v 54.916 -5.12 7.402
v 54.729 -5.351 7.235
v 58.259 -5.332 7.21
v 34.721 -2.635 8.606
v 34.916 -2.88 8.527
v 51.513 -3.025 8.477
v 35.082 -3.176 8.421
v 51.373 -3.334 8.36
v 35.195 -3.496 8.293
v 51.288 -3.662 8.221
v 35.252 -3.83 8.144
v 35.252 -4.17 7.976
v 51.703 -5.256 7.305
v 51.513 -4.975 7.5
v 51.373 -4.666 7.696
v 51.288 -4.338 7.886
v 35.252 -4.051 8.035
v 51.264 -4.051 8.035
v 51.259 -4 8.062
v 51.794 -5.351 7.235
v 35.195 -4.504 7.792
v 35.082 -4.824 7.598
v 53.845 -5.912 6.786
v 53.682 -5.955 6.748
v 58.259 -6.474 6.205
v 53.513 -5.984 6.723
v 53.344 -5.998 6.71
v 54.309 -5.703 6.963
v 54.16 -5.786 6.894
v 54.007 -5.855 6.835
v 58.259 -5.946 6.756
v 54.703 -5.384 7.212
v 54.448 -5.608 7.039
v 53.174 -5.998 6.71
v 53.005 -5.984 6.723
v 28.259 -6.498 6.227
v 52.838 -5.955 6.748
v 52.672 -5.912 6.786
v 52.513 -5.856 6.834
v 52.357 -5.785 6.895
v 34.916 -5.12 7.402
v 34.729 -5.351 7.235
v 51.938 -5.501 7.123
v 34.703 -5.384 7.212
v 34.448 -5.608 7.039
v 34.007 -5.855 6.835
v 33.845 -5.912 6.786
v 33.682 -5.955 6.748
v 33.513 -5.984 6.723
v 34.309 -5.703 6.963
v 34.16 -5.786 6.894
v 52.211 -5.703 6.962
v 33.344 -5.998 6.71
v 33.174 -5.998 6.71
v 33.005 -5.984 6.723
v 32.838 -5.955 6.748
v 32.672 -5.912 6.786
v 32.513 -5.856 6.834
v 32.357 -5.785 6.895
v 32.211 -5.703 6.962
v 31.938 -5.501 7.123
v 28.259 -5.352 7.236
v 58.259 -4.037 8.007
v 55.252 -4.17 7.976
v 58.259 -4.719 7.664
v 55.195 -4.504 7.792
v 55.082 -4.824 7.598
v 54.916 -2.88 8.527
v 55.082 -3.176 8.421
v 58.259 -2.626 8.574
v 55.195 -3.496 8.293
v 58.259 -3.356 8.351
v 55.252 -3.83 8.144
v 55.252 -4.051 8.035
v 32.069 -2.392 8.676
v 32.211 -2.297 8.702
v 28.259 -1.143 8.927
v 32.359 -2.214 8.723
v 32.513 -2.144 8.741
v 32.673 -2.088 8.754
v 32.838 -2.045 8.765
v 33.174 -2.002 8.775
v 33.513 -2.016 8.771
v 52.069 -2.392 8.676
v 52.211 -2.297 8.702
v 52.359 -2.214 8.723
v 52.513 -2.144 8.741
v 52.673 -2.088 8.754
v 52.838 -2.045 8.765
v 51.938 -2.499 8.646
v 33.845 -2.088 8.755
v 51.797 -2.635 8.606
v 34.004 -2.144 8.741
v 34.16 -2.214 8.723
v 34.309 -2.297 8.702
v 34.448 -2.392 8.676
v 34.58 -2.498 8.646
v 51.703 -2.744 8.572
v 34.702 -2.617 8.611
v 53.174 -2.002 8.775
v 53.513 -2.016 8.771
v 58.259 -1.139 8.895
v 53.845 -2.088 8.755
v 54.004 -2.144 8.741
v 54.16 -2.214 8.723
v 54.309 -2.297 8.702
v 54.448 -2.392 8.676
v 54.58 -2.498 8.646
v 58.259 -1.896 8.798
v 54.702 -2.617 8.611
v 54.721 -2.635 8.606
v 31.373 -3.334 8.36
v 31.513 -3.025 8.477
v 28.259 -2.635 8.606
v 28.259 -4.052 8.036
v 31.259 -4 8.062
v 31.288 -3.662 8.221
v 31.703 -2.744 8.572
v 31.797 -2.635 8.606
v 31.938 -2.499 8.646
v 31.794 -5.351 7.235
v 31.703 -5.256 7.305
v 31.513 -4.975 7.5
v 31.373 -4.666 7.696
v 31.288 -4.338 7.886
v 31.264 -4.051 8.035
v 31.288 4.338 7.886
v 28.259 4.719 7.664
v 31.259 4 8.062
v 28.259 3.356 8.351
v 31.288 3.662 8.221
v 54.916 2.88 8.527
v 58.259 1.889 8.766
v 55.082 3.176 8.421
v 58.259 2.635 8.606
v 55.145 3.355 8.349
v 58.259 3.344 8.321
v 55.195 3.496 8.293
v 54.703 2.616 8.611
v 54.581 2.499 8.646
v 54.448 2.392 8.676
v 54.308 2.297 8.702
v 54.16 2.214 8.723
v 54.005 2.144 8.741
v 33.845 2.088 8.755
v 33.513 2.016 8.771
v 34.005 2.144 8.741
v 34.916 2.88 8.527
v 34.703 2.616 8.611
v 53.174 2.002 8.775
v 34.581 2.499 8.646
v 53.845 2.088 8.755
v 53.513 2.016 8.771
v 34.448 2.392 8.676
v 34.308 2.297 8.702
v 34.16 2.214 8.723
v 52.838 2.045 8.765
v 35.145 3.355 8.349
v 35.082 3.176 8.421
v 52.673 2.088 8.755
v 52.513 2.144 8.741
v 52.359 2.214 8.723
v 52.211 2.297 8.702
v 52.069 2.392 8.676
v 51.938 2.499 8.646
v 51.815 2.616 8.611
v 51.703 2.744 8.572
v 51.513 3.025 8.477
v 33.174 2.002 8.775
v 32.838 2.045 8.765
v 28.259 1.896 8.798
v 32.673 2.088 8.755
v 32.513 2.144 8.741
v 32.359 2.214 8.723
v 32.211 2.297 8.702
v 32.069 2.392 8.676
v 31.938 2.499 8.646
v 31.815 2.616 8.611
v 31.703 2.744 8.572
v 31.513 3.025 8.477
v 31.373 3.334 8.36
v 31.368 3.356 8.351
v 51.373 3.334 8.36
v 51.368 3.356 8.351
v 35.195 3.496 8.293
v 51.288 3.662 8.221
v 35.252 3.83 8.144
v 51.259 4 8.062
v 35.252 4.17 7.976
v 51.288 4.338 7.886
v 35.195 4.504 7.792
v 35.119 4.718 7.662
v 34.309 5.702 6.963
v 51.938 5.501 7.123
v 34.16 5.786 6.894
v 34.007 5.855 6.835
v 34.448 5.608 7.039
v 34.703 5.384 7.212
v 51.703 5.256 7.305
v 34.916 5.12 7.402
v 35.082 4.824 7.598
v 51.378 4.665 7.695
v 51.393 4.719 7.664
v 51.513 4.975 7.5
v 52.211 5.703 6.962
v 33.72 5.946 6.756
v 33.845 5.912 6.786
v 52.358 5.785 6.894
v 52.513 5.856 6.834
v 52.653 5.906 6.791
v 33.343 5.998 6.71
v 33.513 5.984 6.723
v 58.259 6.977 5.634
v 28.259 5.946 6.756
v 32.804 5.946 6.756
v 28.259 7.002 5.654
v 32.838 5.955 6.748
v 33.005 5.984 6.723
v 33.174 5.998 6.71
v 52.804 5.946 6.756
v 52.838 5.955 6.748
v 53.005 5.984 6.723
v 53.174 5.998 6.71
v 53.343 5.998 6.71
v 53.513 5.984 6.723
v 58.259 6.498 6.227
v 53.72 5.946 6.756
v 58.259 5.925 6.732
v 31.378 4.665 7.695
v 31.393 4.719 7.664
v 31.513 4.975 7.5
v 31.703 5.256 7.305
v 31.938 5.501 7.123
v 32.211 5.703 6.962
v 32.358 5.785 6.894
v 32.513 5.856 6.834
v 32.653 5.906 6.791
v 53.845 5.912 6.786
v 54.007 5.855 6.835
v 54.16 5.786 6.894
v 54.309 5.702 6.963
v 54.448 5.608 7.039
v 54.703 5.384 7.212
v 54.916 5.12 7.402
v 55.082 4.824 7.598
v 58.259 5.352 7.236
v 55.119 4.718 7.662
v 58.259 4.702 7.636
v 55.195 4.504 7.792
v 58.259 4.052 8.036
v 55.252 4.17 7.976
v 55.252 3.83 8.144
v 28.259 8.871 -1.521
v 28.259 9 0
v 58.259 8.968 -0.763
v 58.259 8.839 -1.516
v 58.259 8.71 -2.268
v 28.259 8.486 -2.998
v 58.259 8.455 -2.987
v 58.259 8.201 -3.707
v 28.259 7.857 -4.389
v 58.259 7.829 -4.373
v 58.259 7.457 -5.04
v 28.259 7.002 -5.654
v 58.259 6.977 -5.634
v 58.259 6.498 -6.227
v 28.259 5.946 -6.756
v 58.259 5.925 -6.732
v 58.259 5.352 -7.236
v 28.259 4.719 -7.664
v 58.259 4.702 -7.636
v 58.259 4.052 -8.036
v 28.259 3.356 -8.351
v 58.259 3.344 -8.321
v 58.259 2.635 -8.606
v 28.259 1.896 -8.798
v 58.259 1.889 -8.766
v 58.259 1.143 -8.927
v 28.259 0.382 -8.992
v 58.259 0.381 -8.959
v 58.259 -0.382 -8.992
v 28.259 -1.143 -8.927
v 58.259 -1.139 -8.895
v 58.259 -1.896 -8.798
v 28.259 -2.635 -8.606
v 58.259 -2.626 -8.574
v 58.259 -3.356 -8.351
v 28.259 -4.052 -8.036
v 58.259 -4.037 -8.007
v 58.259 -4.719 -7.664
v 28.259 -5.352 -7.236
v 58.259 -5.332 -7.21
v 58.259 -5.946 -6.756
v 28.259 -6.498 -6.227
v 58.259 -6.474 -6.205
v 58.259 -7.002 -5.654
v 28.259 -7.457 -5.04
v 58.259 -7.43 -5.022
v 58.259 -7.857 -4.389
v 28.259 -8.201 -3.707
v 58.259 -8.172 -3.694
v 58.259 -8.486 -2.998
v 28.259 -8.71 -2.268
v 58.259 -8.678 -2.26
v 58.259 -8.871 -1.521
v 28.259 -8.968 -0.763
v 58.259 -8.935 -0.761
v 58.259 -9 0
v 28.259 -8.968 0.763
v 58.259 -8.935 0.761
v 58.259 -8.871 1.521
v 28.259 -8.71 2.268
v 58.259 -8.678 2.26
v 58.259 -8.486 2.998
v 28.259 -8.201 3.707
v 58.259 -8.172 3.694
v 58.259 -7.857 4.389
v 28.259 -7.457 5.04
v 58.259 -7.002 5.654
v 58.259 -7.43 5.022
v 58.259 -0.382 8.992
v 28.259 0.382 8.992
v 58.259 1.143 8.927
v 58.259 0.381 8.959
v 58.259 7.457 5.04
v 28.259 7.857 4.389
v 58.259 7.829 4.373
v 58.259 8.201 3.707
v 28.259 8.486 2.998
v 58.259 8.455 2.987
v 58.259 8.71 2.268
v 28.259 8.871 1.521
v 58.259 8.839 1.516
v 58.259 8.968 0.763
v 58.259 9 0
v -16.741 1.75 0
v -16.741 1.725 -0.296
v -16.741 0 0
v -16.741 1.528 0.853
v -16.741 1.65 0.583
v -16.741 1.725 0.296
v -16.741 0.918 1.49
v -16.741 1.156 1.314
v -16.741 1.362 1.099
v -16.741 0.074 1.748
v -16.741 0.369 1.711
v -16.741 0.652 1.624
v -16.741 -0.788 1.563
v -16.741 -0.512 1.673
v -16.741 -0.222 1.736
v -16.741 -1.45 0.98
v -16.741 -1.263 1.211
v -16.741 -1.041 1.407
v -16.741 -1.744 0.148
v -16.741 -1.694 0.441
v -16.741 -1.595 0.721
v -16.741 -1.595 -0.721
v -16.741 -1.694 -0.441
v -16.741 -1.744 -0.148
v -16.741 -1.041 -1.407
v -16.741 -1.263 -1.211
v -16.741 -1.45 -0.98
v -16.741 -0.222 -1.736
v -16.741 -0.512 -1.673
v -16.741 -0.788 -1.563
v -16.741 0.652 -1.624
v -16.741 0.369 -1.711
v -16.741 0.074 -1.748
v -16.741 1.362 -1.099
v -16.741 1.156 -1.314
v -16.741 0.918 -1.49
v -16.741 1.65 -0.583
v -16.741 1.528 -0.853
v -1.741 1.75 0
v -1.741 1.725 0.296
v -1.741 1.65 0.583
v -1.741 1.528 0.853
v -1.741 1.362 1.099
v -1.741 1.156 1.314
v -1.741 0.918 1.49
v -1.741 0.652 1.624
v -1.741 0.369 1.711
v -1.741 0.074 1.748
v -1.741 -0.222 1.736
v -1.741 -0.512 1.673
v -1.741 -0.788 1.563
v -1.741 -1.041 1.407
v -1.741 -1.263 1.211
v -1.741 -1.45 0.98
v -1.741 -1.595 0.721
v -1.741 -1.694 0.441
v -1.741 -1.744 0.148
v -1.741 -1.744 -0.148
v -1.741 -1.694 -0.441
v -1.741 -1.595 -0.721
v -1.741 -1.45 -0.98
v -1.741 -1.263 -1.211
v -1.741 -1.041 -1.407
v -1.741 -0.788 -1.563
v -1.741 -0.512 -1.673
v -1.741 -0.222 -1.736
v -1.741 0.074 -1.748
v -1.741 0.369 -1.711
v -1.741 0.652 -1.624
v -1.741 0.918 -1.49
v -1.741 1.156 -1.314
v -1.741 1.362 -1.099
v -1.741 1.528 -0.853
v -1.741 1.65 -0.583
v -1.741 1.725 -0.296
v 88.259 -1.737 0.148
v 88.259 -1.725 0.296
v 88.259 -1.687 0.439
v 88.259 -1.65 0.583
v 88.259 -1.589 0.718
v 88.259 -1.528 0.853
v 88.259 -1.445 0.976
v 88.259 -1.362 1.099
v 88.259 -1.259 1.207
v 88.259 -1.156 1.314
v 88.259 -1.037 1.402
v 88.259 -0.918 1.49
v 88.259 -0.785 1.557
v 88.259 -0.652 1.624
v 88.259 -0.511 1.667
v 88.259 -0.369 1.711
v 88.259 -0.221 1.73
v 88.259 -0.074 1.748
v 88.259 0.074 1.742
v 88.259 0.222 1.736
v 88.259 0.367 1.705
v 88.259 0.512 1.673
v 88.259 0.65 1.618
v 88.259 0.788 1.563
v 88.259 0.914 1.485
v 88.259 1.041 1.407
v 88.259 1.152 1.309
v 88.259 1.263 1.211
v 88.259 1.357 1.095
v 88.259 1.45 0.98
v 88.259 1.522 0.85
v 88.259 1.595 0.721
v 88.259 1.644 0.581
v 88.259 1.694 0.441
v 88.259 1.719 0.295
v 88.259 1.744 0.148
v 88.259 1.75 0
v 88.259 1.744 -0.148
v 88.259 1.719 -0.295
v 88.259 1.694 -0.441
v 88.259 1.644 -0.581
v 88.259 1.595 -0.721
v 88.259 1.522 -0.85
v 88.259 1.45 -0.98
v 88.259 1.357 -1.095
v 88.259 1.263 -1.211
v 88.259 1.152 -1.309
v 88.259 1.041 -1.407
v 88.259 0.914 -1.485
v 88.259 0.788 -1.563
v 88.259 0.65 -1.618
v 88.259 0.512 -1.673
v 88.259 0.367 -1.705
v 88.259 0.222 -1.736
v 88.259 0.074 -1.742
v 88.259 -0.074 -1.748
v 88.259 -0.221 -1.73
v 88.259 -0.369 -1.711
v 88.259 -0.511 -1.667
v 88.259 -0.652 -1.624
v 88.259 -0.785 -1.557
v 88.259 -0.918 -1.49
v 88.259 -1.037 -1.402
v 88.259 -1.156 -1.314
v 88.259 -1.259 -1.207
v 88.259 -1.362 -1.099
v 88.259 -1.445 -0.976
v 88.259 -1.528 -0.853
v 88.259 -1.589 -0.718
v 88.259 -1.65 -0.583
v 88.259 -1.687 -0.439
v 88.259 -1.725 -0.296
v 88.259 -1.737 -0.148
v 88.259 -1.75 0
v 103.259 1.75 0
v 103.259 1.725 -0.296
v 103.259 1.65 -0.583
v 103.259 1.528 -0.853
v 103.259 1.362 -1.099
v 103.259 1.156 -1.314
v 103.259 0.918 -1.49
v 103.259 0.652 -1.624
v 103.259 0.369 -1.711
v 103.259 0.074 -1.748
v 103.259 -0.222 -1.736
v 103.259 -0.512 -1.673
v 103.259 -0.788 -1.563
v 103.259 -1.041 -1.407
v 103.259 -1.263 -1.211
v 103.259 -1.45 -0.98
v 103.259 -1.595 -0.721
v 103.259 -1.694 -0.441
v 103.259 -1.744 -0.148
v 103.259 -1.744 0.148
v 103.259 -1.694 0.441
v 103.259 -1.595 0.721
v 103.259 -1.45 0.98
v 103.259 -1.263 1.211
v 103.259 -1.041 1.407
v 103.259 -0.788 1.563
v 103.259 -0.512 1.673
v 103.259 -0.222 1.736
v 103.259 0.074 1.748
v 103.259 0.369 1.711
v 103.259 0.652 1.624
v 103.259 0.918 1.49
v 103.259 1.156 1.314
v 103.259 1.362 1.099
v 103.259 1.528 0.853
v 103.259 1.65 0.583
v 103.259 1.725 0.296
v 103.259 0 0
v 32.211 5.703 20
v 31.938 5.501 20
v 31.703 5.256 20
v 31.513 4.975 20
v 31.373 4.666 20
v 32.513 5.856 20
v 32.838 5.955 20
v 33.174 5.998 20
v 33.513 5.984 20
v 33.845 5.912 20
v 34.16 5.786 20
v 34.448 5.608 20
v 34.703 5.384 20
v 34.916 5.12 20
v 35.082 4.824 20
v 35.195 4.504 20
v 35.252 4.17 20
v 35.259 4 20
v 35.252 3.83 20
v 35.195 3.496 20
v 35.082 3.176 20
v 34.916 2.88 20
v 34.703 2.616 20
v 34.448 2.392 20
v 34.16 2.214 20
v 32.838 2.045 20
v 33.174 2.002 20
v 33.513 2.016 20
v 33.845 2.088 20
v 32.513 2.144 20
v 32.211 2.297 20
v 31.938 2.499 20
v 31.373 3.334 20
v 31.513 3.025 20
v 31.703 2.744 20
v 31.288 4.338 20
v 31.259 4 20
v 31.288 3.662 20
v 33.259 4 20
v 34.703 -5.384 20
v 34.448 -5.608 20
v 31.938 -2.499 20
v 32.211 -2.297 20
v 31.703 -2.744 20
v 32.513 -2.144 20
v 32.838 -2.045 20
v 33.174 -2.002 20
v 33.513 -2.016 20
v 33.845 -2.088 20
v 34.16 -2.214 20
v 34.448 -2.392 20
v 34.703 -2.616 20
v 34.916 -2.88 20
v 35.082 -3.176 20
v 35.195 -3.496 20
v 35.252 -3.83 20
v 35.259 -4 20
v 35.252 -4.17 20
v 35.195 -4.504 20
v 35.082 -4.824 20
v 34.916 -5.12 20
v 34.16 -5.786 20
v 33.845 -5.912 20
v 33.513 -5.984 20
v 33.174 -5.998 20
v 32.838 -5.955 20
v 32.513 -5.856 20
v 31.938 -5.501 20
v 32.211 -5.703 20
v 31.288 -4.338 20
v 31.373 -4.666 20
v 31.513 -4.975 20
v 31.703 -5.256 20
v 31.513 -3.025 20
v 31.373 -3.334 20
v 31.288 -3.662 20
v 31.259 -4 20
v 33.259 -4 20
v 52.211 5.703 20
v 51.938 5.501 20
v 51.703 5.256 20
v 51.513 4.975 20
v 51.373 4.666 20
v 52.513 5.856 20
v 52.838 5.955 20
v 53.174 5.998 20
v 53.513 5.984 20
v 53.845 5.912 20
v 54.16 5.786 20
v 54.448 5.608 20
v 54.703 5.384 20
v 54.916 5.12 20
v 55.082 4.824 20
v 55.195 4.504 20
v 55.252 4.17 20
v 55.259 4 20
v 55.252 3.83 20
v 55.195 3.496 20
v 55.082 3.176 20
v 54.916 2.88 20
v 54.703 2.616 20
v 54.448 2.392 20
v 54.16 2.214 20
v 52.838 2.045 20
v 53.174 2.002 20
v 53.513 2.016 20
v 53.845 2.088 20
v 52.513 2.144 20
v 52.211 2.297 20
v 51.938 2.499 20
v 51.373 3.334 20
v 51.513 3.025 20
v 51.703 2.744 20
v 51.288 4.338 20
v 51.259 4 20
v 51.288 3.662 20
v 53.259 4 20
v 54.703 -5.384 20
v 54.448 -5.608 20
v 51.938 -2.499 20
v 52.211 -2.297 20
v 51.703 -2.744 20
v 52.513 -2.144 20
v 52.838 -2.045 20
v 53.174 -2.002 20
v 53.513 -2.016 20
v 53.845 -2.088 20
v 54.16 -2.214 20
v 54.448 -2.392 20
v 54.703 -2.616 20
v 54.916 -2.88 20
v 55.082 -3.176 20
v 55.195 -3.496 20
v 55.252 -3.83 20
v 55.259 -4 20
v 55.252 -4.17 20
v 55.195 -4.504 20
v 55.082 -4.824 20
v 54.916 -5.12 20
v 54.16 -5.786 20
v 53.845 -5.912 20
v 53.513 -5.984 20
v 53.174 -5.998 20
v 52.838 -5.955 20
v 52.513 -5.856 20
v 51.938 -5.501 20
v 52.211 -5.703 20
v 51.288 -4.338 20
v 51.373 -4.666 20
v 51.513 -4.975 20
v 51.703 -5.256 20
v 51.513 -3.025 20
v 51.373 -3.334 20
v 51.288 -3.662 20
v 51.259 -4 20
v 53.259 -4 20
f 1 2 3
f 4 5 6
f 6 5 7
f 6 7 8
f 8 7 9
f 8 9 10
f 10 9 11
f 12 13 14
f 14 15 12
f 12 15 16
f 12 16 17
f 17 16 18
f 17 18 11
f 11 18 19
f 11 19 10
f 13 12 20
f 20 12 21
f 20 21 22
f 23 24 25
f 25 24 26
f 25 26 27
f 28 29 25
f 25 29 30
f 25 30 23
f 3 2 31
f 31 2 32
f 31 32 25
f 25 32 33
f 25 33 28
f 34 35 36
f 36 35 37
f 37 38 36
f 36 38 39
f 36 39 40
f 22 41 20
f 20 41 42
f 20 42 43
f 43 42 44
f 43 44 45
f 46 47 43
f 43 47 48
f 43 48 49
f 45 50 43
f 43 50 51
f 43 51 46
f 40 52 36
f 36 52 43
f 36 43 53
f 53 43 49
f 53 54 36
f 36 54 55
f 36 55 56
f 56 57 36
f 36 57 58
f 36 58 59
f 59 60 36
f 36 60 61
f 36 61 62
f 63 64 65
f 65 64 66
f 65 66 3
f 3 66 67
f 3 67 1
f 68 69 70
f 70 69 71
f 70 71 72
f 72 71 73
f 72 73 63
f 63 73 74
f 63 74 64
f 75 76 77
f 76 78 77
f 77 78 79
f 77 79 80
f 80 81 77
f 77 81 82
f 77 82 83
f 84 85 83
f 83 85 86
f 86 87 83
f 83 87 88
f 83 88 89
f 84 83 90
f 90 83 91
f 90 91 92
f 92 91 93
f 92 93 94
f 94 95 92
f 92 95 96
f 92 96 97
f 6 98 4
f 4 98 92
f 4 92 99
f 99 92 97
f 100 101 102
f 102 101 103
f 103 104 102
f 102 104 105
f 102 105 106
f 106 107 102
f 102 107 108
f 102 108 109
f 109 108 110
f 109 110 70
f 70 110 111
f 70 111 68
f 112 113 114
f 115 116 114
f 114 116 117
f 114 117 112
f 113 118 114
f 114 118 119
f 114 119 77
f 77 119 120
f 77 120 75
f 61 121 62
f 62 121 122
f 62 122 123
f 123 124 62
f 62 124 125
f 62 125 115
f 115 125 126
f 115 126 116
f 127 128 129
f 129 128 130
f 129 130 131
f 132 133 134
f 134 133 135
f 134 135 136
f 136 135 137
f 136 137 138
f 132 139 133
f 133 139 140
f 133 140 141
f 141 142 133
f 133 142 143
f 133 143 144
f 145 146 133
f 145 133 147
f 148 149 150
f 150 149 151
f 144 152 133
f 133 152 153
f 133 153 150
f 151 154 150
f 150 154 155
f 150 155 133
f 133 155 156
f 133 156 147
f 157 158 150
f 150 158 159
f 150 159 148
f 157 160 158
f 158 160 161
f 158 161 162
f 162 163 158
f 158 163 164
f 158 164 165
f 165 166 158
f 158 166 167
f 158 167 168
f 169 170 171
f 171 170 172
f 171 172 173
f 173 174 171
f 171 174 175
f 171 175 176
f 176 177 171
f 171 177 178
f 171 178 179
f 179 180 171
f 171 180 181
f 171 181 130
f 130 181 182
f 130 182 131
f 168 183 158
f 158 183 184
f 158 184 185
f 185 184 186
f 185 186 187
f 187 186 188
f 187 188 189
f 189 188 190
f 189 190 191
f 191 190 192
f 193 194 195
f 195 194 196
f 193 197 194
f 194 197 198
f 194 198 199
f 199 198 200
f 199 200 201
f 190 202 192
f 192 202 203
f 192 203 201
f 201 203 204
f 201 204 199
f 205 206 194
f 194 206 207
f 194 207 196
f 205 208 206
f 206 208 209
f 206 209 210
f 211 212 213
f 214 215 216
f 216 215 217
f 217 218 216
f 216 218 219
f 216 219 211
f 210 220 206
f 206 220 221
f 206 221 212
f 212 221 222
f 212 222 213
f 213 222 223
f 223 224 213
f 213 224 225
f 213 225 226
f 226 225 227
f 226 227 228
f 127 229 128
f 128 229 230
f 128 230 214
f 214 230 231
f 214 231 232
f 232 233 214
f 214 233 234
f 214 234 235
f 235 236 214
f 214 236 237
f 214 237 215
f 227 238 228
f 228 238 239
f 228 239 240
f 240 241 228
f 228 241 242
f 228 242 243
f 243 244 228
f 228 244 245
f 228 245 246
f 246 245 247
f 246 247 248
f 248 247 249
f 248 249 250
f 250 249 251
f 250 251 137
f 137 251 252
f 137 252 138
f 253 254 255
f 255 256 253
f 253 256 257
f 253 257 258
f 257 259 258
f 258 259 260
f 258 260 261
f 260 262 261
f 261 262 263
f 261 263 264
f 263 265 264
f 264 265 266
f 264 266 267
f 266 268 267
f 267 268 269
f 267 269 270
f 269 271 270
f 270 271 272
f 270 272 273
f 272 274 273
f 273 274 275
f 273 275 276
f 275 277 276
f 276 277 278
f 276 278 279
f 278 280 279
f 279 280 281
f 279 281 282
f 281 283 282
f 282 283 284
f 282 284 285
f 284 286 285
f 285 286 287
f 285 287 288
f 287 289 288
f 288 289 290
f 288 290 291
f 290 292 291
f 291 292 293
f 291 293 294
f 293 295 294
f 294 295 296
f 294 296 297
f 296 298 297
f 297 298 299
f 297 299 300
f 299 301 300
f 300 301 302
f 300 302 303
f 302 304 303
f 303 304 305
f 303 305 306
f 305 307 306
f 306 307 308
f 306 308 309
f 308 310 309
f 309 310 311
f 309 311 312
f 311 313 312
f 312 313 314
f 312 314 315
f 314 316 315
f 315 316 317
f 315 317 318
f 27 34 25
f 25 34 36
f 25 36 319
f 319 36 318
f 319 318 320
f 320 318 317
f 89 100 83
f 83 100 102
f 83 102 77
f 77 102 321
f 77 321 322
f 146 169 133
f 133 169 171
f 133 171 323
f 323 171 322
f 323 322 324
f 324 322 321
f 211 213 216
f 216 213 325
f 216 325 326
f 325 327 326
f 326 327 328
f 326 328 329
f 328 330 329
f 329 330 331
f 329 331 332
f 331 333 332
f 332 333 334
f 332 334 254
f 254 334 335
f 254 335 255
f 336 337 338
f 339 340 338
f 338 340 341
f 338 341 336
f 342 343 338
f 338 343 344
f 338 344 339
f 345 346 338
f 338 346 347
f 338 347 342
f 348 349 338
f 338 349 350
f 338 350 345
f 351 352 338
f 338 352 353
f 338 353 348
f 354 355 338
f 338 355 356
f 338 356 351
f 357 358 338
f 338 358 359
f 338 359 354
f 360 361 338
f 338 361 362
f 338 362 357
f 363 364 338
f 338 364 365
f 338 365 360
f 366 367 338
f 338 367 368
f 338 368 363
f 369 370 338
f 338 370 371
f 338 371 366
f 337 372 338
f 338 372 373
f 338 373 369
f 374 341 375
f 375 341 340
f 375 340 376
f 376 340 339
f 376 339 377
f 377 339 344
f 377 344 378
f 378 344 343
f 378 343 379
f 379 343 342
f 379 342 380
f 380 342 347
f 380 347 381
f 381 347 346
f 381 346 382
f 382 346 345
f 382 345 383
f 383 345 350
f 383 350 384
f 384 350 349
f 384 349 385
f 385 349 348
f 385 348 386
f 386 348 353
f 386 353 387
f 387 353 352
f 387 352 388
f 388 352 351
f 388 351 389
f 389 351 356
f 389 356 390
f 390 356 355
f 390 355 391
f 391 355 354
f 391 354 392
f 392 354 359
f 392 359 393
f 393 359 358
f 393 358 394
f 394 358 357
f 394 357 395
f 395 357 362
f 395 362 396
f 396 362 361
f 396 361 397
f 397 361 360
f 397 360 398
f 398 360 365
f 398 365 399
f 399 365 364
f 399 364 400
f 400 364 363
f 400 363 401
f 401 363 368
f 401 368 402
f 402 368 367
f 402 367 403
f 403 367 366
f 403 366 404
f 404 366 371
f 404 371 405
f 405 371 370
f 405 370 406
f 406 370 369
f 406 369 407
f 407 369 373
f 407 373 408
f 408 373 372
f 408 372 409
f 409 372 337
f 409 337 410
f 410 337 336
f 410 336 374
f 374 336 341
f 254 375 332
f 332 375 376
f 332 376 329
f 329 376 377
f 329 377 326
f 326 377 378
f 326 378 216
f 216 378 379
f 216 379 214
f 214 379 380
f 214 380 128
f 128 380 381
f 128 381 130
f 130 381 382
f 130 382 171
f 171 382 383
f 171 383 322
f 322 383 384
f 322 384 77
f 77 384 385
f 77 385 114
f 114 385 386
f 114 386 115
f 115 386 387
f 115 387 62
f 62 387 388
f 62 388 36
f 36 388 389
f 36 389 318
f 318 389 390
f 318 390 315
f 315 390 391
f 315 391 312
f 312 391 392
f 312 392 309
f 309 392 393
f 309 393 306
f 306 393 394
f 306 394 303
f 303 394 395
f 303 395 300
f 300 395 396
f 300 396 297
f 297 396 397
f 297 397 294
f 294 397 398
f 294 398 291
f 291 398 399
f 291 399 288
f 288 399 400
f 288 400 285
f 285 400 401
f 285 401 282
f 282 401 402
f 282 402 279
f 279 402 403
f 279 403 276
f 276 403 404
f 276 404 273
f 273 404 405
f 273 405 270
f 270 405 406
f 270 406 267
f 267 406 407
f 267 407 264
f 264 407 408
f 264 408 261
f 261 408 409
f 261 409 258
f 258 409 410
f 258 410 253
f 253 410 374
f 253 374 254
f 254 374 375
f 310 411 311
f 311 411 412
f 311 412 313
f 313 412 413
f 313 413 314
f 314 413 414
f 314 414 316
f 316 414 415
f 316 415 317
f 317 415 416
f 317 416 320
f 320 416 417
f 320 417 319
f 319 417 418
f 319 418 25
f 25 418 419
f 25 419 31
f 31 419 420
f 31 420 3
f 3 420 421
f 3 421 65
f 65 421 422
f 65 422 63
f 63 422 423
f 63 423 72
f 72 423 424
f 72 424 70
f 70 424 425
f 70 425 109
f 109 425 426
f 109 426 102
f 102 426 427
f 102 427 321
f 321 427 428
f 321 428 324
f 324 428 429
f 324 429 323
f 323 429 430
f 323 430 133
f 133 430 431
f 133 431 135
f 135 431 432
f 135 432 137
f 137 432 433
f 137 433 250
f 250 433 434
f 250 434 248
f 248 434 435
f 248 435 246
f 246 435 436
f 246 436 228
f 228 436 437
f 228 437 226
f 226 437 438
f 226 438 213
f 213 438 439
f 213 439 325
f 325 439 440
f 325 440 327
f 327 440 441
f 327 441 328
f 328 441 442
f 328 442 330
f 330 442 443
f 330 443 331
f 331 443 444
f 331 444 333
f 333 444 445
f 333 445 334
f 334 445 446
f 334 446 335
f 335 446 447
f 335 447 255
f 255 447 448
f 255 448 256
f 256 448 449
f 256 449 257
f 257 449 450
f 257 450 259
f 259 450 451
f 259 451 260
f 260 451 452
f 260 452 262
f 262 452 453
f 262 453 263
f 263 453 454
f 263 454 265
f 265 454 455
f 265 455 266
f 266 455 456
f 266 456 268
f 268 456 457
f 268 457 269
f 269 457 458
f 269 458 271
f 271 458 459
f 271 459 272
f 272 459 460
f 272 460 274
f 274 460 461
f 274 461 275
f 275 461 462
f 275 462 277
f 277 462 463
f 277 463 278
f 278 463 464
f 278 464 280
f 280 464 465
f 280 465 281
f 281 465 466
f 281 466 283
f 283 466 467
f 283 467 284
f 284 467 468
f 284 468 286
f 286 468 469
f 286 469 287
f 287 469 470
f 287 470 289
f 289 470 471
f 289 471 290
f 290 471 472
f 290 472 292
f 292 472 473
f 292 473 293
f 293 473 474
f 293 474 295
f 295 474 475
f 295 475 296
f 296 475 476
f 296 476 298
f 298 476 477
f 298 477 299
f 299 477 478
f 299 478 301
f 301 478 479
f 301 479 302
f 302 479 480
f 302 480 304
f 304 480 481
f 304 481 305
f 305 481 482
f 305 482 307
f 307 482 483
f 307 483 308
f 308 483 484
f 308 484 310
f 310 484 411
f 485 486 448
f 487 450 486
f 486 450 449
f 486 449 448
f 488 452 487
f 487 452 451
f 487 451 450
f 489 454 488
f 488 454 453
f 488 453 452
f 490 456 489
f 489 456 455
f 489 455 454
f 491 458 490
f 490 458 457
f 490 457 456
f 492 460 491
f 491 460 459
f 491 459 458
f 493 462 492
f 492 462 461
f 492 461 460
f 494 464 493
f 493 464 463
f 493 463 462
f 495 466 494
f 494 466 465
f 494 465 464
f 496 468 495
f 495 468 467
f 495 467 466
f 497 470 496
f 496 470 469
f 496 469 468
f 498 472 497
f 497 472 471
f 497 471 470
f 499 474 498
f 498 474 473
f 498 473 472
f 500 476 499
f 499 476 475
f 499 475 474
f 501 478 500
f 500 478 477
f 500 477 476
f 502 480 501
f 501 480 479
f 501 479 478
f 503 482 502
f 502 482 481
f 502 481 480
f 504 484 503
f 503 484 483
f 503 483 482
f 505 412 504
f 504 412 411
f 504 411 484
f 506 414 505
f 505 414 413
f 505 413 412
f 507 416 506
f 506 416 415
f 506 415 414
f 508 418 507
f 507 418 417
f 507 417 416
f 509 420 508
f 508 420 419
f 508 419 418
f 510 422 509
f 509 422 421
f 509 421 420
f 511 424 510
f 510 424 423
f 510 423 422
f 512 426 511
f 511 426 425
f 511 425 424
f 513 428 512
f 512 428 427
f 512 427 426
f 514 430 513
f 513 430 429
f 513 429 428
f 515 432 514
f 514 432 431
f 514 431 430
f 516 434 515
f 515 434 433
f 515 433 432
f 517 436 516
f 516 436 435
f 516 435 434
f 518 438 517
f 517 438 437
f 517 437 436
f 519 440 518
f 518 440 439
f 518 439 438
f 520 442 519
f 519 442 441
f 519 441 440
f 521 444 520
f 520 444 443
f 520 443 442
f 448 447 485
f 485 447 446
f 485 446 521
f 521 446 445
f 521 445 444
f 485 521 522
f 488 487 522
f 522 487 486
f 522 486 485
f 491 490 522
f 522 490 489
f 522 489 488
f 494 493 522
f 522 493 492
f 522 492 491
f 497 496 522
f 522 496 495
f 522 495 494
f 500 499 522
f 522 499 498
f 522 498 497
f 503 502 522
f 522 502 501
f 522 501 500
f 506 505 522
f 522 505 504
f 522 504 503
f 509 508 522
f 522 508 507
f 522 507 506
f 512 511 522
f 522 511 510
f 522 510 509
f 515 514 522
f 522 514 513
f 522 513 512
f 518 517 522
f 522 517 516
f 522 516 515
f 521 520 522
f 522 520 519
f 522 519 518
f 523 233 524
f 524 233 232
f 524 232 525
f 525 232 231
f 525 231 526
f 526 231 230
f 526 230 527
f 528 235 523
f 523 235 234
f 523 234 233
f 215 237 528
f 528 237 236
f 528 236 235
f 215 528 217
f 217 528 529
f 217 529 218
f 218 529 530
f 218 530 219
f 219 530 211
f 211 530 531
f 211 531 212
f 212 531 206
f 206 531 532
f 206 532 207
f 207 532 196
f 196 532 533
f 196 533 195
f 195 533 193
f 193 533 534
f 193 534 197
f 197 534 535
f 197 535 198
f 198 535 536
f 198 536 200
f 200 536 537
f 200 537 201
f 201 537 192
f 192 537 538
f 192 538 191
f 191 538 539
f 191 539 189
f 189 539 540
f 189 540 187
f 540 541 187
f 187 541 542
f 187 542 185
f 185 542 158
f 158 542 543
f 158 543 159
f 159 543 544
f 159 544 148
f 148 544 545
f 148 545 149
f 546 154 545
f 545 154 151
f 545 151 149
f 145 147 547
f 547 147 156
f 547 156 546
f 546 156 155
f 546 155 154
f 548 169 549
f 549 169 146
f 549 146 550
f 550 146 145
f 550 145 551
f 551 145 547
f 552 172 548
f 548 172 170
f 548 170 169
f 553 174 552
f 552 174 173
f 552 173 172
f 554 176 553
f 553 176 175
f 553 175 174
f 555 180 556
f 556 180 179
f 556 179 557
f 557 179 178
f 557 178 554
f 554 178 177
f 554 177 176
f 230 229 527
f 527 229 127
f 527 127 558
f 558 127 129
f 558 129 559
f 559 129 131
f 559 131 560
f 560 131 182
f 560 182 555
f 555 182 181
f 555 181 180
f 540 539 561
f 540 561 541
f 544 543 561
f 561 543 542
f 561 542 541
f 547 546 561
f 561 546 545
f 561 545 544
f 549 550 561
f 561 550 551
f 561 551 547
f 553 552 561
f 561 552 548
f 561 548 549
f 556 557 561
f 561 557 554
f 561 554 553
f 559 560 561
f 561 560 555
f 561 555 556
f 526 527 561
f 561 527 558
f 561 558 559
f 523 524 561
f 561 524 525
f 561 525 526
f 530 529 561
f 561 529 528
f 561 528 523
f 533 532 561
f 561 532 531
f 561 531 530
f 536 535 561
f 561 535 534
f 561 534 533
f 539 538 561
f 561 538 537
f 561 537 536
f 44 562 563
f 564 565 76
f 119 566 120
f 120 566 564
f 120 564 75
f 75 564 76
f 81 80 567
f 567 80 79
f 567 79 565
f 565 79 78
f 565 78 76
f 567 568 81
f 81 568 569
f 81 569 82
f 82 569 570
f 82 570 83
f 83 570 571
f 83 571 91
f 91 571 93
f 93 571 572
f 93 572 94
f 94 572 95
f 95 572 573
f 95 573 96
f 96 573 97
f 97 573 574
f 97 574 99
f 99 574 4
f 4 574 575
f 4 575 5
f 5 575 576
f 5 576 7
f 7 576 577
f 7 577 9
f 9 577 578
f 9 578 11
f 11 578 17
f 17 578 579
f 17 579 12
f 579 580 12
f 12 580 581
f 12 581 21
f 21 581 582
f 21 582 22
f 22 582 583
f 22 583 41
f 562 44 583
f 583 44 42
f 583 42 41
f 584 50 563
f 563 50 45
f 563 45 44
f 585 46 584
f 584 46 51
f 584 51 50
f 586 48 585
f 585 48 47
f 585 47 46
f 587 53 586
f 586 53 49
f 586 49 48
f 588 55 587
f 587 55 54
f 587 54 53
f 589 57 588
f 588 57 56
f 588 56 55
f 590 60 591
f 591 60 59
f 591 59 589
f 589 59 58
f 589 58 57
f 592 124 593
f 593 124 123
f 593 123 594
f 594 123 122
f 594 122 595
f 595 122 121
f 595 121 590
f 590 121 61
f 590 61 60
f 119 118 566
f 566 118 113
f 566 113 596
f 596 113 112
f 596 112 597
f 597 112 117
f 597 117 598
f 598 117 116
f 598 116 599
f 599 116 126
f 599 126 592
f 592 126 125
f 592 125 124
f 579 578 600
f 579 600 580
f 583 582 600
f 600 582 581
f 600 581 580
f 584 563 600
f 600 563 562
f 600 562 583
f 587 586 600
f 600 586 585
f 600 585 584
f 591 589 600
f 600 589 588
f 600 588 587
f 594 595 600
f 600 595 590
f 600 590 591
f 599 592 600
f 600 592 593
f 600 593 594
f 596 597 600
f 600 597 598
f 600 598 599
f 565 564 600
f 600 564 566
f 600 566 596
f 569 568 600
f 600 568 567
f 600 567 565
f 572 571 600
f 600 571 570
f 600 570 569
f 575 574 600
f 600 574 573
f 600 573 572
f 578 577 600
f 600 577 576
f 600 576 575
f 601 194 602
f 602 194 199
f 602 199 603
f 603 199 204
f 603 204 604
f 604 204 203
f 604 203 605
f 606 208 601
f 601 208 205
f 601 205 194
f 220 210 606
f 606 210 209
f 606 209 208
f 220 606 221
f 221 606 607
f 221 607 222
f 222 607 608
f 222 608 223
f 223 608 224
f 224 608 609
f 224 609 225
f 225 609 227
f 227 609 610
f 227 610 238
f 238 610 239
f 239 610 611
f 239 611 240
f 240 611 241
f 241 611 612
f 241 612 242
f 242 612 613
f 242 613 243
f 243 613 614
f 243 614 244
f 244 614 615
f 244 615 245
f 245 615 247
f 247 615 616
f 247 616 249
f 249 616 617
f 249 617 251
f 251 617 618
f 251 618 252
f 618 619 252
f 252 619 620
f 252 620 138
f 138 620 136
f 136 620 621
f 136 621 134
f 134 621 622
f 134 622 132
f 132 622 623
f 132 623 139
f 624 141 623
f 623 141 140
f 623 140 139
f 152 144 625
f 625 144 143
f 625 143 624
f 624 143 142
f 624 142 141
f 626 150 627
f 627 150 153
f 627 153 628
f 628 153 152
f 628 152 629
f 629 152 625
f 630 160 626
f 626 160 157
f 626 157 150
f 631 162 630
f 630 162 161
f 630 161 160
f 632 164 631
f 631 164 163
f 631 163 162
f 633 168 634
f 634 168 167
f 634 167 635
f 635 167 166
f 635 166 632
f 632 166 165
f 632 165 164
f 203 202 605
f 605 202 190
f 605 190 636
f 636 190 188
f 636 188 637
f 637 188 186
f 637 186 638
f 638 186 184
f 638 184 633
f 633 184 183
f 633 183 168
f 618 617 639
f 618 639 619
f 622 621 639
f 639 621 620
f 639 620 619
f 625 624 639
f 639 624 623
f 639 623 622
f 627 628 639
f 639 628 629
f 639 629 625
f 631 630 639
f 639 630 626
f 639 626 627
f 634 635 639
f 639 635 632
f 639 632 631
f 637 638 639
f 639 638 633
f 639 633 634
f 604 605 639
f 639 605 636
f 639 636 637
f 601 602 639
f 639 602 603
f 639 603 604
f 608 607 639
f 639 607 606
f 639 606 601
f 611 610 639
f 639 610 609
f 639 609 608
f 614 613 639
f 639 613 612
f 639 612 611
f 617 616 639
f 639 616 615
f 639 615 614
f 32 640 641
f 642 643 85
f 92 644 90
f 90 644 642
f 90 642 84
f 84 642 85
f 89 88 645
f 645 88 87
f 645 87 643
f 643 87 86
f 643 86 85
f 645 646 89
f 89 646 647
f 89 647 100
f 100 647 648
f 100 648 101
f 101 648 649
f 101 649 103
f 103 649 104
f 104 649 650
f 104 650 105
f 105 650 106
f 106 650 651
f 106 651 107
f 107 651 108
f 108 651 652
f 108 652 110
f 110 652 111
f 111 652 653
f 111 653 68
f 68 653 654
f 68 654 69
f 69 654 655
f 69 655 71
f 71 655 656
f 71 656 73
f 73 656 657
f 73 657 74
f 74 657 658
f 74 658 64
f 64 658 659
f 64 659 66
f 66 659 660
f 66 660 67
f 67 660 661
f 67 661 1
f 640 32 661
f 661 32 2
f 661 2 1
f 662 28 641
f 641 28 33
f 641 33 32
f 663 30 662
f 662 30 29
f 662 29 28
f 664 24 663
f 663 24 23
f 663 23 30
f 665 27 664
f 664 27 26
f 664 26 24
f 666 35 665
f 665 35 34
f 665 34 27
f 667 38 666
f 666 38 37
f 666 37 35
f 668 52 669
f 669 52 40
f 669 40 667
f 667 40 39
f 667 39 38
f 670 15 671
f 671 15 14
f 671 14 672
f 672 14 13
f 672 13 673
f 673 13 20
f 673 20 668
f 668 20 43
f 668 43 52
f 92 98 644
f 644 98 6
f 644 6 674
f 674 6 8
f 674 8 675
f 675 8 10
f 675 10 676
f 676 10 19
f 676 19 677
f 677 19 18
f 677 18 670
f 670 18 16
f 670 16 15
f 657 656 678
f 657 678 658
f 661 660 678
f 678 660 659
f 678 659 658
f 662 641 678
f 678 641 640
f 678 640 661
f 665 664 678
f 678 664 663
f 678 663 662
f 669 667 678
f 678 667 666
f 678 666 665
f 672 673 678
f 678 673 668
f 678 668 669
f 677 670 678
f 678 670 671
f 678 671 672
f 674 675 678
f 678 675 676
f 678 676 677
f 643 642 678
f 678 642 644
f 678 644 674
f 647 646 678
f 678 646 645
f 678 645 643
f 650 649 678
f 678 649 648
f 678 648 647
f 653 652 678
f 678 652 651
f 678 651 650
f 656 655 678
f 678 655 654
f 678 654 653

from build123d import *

# Parameters (mm, degrees)
SKETCH2_R           = 2
BOSS_EXTRUDE1_DEPTH = 20


with BuildPart() as part:
    # Sketch1 → Revolve1 (revolve)
    with BuildSketch(Plane.XY):
        Polygon((-16.740830618, 1.75), (-1.740830618, 1.75), (28.259169382, 9), (58.259169382, 9), (88.259169382, 1.75), (103.259169382, 1.75), (103.259169382, 0), (-16.740830618, 0), align=None)
    revolve(axis=Axis((103.259169382, 0, 0), (-1, 0, 0)))

    # Sketch2 → Boss-Extrude1 (add)
    with BuildSketch(Plane.XY):
        with Locations(Location((33.259169382, 4, 0), (0, 0, 180))):
            Circle(SKETCH2_R)
        with Locations(Location((33.259169382, -4, 0), (0, 0, 180))):
            Circle(SKETCH2_R)
        with Locations(Location((53.259169382, 4, 0), (0, 0, 180))):
            Circle(SKETCH2_R)
        with Locations(Location((53.259169382, -4, 0), (0, 0, 180))):
            Circle(SKETCH2_R)
    extrude(amount=BOSS_EXTRUDE1_DEPTH)


solid = part.part
